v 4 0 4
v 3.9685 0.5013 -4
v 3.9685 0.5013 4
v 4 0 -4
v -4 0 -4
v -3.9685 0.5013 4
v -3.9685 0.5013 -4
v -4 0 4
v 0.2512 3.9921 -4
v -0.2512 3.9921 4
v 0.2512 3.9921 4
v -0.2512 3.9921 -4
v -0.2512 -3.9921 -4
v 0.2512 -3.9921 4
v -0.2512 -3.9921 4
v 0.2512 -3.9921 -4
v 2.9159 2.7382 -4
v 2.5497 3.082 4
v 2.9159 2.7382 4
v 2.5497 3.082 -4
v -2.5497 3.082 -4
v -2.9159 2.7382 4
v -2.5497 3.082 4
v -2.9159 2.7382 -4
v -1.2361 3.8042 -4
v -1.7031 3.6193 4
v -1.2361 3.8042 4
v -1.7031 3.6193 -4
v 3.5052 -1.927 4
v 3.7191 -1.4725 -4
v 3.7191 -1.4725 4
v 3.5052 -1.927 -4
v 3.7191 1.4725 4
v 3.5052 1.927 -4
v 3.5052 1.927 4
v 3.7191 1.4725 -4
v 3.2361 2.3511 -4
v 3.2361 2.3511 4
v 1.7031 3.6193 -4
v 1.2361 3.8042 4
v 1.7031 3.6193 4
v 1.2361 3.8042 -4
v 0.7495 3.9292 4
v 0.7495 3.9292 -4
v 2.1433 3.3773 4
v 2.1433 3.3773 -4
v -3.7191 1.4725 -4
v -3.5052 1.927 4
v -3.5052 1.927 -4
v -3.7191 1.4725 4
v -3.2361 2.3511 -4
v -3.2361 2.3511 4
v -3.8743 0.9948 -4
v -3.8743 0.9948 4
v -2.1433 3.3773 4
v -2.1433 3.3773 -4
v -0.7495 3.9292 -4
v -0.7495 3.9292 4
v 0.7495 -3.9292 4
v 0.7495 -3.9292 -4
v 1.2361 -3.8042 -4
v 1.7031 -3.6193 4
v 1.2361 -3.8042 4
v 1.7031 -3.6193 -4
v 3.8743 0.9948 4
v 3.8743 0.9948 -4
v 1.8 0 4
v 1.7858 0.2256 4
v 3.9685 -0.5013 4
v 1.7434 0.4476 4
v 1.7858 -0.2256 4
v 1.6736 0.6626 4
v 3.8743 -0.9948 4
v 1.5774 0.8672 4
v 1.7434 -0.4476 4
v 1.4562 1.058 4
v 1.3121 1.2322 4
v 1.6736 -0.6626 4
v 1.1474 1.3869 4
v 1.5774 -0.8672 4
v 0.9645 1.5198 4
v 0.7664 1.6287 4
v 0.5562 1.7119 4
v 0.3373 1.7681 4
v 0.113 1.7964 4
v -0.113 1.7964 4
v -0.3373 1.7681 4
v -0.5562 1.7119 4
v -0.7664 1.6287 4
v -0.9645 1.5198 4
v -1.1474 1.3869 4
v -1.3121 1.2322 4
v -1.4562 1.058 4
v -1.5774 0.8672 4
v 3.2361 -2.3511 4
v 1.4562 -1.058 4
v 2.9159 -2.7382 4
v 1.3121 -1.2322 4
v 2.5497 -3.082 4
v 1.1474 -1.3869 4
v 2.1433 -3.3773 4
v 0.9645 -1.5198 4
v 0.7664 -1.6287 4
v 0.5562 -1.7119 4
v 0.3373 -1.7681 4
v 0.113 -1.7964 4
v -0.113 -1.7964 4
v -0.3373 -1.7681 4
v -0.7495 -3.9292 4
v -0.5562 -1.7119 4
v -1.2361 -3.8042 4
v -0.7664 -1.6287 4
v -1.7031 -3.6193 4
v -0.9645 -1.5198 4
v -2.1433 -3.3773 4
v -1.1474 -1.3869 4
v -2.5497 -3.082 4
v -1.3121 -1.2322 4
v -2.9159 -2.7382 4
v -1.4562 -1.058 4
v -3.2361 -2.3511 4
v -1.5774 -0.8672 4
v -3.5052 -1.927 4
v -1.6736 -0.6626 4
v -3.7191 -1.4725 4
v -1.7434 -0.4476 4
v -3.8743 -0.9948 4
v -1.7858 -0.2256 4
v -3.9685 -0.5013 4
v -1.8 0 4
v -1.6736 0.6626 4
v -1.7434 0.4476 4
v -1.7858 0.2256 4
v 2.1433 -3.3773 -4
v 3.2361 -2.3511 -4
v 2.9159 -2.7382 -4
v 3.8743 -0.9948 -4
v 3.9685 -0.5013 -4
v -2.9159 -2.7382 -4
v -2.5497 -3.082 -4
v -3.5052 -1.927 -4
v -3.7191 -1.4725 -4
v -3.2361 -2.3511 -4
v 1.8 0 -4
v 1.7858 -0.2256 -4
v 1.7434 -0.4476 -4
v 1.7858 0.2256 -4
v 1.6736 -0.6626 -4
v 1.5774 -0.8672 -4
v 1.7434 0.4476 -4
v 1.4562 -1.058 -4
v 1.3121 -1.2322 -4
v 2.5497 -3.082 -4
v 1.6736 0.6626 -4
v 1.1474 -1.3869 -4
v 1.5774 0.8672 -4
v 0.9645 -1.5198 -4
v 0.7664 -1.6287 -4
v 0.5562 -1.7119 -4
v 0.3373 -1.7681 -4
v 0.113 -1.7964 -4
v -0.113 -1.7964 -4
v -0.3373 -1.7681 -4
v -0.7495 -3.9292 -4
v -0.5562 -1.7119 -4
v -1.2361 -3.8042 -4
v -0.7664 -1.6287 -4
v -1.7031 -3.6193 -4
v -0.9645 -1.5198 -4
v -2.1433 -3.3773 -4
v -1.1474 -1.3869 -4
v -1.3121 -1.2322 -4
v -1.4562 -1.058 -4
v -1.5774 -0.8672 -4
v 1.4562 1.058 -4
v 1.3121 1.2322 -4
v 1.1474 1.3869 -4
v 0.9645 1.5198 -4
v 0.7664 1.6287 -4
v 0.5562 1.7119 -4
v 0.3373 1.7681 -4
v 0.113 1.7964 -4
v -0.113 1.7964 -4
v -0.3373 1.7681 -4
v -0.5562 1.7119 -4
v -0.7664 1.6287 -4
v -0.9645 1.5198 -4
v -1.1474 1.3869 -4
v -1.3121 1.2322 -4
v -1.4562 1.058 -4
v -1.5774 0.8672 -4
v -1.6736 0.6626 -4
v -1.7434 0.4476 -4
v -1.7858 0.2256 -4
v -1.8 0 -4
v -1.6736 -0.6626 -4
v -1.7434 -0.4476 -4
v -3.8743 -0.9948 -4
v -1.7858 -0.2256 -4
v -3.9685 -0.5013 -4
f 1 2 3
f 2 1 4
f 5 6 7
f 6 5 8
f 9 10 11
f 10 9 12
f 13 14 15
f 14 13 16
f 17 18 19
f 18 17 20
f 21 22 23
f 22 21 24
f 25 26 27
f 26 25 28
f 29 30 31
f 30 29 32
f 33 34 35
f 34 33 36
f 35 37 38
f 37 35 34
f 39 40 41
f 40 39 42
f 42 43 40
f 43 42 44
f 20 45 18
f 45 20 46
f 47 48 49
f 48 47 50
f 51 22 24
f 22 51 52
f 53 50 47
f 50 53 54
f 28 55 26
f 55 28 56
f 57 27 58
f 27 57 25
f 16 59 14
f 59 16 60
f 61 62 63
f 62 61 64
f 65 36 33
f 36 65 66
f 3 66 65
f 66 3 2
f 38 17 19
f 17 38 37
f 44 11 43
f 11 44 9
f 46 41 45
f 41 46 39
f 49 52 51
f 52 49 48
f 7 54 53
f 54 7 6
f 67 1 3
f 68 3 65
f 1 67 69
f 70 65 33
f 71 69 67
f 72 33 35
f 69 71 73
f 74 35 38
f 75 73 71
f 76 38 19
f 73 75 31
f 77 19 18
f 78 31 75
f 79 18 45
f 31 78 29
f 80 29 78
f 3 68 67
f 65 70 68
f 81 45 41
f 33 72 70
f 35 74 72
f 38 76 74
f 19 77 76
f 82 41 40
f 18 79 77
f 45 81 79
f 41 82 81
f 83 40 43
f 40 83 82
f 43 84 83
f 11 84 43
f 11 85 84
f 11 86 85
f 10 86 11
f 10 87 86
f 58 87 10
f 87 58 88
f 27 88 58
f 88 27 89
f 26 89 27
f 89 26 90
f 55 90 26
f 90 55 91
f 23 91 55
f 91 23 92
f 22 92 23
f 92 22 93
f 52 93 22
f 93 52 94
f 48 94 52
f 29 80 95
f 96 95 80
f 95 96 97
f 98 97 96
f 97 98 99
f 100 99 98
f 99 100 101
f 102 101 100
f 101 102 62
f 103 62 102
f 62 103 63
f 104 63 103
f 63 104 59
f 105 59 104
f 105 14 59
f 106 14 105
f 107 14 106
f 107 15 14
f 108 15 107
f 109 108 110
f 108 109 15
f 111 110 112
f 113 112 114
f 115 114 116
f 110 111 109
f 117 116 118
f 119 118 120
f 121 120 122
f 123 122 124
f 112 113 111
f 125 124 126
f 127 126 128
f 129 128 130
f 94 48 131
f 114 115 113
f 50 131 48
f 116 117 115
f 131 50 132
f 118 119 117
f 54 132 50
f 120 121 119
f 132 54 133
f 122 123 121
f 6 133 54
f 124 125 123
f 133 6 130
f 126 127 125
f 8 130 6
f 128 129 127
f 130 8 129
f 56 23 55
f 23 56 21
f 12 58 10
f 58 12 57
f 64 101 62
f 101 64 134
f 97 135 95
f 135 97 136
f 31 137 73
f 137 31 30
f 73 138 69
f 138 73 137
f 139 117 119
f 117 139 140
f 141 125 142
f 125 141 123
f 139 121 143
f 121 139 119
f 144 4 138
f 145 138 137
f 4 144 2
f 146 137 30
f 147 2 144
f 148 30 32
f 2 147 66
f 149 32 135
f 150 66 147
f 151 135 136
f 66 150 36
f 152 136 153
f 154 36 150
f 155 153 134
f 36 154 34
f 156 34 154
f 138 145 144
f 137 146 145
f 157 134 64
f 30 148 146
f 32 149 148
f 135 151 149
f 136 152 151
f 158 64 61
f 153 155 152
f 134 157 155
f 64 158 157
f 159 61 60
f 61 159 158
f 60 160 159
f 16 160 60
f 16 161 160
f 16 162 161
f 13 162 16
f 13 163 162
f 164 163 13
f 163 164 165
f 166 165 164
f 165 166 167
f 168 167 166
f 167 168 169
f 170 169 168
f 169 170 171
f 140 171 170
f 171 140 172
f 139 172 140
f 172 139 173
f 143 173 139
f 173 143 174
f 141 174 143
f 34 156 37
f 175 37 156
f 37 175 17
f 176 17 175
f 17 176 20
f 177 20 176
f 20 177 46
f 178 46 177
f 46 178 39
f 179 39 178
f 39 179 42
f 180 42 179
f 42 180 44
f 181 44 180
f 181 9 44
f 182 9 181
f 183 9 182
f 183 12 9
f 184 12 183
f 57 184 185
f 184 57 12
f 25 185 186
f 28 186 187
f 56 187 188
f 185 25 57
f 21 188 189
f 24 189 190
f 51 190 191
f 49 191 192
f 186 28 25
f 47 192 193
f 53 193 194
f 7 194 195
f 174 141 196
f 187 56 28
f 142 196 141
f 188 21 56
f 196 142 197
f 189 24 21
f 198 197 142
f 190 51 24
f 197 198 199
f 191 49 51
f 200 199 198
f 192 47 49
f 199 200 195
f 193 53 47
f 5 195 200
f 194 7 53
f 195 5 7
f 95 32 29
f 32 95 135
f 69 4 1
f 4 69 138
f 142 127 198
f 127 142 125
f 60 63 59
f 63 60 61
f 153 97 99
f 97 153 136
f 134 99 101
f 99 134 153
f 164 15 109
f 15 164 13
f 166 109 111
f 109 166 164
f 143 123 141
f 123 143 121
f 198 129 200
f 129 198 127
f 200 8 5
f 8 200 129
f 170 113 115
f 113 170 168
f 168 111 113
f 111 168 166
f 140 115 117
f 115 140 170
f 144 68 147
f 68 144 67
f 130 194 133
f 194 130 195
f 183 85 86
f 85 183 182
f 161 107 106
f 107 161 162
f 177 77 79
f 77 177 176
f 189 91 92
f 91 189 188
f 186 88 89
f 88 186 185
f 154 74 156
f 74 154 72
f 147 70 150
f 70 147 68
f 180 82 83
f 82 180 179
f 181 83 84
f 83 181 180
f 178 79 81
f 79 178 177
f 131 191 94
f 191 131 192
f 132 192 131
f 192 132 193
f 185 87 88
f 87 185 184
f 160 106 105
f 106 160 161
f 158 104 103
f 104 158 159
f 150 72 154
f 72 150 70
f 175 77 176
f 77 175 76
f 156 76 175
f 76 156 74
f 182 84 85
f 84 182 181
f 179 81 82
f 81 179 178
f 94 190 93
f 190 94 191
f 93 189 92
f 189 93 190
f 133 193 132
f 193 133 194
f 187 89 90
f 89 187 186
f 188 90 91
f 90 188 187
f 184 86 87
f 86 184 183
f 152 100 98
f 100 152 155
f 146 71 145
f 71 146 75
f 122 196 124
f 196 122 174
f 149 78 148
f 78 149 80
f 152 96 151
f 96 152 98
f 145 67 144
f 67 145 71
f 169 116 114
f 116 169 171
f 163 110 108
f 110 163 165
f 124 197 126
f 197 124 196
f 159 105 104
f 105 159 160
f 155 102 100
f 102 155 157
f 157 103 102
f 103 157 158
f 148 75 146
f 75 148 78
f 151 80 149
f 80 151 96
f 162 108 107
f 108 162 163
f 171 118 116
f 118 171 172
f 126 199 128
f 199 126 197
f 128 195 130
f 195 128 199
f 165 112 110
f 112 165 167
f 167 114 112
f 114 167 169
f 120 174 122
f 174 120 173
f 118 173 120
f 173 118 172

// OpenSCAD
$fn = 50;


difference() {
	union() {
		translate(v = [0, 0, -4.0000000000]) {
			cylinder(h = 8, r = 4.0000000000);
		}
	}
	union() {
		translate(v = [0, 0, -100.0000000000]) {
			cylinder(h = 200, r = 1.8000000000);
		}
	}
}
